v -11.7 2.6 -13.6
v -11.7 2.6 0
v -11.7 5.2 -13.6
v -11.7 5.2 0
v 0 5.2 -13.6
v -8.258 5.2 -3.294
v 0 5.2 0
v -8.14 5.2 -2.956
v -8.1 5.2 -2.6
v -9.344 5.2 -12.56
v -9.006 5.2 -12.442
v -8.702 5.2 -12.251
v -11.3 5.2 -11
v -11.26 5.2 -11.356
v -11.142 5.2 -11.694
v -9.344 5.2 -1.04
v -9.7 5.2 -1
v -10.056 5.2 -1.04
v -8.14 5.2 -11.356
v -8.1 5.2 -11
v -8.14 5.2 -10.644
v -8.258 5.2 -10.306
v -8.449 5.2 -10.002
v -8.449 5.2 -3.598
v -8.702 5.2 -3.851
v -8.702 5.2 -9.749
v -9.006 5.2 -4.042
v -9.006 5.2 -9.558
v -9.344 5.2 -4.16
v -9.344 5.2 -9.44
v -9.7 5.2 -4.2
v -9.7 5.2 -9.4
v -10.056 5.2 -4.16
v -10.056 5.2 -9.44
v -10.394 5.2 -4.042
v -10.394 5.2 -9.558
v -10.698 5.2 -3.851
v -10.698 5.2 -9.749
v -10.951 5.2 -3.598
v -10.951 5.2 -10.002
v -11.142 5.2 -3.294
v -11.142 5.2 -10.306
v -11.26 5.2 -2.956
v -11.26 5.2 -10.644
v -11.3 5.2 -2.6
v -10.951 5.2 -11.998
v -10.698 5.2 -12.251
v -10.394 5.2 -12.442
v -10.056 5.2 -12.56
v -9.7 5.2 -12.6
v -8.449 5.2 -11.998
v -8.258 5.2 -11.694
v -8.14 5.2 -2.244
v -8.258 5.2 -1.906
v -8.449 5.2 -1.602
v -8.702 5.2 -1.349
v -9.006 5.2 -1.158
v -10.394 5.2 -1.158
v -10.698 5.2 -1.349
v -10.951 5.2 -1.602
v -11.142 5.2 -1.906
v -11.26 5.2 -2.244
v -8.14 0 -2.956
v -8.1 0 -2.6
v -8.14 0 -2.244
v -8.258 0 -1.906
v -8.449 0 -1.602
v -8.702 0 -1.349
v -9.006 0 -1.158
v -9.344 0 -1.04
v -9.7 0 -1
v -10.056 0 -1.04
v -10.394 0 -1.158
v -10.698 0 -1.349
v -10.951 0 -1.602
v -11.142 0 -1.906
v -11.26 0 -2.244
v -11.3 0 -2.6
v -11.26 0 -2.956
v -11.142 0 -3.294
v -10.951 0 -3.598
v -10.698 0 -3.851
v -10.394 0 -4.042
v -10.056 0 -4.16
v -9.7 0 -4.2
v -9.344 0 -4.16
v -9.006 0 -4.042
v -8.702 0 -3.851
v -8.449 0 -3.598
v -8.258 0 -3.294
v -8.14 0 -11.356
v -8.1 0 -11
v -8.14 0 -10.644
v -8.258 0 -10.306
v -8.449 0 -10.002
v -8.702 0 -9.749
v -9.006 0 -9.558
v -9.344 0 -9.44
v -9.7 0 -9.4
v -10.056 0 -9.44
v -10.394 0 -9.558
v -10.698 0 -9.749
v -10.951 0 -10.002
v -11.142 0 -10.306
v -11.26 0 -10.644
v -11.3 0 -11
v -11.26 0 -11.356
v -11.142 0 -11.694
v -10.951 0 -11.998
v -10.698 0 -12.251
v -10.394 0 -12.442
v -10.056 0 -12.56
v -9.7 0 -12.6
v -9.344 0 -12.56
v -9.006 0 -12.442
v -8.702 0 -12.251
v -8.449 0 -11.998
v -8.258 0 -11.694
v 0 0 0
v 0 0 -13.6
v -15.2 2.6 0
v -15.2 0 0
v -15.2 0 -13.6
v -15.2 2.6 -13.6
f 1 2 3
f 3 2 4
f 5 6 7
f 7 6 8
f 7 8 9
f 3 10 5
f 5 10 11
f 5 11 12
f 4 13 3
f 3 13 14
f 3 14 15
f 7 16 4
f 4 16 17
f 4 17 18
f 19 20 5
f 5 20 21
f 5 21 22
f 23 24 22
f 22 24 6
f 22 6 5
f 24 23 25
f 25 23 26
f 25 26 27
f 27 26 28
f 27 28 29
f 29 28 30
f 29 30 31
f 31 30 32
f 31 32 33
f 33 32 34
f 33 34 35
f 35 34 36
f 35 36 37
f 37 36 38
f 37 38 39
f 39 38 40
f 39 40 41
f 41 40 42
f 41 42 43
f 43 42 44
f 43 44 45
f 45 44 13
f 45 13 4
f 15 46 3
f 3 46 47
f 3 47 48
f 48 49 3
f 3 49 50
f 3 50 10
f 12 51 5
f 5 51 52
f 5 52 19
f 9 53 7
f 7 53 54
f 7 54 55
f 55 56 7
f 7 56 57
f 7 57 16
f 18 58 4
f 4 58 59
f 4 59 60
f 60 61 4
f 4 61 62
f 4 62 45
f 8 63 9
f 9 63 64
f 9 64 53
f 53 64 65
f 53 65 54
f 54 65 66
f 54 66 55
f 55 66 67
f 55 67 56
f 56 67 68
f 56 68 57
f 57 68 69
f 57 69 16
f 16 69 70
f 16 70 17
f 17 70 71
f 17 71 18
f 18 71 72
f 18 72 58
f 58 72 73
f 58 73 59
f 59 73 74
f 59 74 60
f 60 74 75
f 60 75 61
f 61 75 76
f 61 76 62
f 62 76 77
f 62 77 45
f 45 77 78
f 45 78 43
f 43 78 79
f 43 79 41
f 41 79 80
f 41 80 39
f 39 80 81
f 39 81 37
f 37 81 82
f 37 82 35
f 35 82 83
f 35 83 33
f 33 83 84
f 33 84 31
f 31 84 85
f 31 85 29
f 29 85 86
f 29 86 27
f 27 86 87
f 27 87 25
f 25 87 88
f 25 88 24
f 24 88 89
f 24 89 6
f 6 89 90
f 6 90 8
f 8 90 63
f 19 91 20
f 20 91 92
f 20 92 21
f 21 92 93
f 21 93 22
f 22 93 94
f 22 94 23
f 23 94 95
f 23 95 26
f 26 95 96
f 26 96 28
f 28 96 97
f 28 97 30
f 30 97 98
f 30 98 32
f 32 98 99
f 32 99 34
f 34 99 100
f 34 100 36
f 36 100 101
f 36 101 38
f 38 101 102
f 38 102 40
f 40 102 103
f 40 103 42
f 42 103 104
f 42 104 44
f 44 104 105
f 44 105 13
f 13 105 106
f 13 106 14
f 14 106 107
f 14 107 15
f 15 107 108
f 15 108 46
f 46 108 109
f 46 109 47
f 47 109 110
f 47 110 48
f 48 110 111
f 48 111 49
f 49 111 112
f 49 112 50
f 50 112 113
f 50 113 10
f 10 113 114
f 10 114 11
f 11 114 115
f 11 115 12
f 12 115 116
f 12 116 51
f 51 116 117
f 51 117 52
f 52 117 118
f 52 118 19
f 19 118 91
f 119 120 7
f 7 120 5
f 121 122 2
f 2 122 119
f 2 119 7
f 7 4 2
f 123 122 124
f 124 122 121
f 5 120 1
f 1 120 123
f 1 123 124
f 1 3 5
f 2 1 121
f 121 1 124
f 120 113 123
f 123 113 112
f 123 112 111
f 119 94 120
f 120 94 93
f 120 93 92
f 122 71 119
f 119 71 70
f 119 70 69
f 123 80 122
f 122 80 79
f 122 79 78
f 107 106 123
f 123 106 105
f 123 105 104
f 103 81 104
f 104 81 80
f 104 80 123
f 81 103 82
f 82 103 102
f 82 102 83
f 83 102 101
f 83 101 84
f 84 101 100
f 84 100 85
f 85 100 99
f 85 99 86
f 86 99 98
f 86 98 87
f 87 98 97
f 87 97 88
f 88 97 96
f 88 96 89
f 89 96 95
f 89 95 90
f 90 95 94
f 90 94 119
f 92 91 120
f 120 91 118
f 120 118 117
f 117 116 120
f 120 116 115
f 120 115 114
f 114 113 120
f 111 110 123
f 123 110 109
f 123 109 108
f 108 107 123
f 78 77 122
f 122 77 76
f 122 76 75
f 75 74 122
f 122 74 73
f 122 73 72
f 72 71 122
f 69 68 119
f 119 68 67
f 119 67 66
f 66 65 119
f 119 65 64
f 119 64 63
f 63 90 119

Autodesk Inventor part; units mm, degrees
ref_plane "YZ Plane" through (0, 0, 0) normal (1, 0, 0) x (0, 1, 0)
ref_plane "XZ Plane" through (0, 0, 0) normal (0, 1, 0) x (-1, 0, 0)
ref_plane "XY Plane" through (0, 0, 0) normal (0, 0, 1) x (1, 0, 0)
sketch "Sketch1" plane through (0, 0, 0) normal (0, 1, 0) x (-1, 0, 0)
  line L0 (0, 0) -> (15.2, 0)
  line L1 (15.2, 0) -> (15.2, -13.6)
  line L2 (15.2, -13.6) -> (0, -13.6)
  line L3 (0, -13.6) -> (0, 0)
  circle A0 centre (9.7, -2.6) radius 1.6
  circle A1 centre (9.7, -11) radius 1.6
  line L4 (9.7, 0) -> (9.7, -13.6) construction
  dimension "d0" = 13.6
  dimension "d1" = 15.2
  dimension "d2" = 3.2
  dimension "d3" = 2.6
  dimension "d4" = 2.6
  dimension "d5" = 5.5
extrude "Extrusion1" add sketch "Sketch1" along normal blind 2.6
sketch "Sketch2" plane through (0, 2.6, 0) normal (0, 1, 0) x (1, 0, 0)
  line L0 (0, 0) -> (0, 13.6) projected
  line L1 (0, 13.6) -> (-15.2, 13.6) projected
  line L2 (0, 0) -> (-11.7, 0)
  line L3 (-11.7, 0) -> (-11.7, 13.6)
  line L4 (-11.7, 13.6) -> (0, 13.6)
  line L5 (0, 13.6) -> (0, 0)
  line L6 (-15.2, 13.6) -> (-15.2, 0) projected
  circle A0 centre (-9.7, 11) radius 1.6
  circle A1 centre (-9.7, 2.6) radius 1.6
  circle A2 centre (-9.7, 2.6) radius 1.6 projected
  circle A3 centre (-9.7, 11) radius 1.6 projected
  point P0 (-15.2, 6.8)
  dimension "d9" = 3.5
extrude "Extrusion3" add sketch "Sketch2" along normal blind 2.6
properties part number "micro usb pin cover"
